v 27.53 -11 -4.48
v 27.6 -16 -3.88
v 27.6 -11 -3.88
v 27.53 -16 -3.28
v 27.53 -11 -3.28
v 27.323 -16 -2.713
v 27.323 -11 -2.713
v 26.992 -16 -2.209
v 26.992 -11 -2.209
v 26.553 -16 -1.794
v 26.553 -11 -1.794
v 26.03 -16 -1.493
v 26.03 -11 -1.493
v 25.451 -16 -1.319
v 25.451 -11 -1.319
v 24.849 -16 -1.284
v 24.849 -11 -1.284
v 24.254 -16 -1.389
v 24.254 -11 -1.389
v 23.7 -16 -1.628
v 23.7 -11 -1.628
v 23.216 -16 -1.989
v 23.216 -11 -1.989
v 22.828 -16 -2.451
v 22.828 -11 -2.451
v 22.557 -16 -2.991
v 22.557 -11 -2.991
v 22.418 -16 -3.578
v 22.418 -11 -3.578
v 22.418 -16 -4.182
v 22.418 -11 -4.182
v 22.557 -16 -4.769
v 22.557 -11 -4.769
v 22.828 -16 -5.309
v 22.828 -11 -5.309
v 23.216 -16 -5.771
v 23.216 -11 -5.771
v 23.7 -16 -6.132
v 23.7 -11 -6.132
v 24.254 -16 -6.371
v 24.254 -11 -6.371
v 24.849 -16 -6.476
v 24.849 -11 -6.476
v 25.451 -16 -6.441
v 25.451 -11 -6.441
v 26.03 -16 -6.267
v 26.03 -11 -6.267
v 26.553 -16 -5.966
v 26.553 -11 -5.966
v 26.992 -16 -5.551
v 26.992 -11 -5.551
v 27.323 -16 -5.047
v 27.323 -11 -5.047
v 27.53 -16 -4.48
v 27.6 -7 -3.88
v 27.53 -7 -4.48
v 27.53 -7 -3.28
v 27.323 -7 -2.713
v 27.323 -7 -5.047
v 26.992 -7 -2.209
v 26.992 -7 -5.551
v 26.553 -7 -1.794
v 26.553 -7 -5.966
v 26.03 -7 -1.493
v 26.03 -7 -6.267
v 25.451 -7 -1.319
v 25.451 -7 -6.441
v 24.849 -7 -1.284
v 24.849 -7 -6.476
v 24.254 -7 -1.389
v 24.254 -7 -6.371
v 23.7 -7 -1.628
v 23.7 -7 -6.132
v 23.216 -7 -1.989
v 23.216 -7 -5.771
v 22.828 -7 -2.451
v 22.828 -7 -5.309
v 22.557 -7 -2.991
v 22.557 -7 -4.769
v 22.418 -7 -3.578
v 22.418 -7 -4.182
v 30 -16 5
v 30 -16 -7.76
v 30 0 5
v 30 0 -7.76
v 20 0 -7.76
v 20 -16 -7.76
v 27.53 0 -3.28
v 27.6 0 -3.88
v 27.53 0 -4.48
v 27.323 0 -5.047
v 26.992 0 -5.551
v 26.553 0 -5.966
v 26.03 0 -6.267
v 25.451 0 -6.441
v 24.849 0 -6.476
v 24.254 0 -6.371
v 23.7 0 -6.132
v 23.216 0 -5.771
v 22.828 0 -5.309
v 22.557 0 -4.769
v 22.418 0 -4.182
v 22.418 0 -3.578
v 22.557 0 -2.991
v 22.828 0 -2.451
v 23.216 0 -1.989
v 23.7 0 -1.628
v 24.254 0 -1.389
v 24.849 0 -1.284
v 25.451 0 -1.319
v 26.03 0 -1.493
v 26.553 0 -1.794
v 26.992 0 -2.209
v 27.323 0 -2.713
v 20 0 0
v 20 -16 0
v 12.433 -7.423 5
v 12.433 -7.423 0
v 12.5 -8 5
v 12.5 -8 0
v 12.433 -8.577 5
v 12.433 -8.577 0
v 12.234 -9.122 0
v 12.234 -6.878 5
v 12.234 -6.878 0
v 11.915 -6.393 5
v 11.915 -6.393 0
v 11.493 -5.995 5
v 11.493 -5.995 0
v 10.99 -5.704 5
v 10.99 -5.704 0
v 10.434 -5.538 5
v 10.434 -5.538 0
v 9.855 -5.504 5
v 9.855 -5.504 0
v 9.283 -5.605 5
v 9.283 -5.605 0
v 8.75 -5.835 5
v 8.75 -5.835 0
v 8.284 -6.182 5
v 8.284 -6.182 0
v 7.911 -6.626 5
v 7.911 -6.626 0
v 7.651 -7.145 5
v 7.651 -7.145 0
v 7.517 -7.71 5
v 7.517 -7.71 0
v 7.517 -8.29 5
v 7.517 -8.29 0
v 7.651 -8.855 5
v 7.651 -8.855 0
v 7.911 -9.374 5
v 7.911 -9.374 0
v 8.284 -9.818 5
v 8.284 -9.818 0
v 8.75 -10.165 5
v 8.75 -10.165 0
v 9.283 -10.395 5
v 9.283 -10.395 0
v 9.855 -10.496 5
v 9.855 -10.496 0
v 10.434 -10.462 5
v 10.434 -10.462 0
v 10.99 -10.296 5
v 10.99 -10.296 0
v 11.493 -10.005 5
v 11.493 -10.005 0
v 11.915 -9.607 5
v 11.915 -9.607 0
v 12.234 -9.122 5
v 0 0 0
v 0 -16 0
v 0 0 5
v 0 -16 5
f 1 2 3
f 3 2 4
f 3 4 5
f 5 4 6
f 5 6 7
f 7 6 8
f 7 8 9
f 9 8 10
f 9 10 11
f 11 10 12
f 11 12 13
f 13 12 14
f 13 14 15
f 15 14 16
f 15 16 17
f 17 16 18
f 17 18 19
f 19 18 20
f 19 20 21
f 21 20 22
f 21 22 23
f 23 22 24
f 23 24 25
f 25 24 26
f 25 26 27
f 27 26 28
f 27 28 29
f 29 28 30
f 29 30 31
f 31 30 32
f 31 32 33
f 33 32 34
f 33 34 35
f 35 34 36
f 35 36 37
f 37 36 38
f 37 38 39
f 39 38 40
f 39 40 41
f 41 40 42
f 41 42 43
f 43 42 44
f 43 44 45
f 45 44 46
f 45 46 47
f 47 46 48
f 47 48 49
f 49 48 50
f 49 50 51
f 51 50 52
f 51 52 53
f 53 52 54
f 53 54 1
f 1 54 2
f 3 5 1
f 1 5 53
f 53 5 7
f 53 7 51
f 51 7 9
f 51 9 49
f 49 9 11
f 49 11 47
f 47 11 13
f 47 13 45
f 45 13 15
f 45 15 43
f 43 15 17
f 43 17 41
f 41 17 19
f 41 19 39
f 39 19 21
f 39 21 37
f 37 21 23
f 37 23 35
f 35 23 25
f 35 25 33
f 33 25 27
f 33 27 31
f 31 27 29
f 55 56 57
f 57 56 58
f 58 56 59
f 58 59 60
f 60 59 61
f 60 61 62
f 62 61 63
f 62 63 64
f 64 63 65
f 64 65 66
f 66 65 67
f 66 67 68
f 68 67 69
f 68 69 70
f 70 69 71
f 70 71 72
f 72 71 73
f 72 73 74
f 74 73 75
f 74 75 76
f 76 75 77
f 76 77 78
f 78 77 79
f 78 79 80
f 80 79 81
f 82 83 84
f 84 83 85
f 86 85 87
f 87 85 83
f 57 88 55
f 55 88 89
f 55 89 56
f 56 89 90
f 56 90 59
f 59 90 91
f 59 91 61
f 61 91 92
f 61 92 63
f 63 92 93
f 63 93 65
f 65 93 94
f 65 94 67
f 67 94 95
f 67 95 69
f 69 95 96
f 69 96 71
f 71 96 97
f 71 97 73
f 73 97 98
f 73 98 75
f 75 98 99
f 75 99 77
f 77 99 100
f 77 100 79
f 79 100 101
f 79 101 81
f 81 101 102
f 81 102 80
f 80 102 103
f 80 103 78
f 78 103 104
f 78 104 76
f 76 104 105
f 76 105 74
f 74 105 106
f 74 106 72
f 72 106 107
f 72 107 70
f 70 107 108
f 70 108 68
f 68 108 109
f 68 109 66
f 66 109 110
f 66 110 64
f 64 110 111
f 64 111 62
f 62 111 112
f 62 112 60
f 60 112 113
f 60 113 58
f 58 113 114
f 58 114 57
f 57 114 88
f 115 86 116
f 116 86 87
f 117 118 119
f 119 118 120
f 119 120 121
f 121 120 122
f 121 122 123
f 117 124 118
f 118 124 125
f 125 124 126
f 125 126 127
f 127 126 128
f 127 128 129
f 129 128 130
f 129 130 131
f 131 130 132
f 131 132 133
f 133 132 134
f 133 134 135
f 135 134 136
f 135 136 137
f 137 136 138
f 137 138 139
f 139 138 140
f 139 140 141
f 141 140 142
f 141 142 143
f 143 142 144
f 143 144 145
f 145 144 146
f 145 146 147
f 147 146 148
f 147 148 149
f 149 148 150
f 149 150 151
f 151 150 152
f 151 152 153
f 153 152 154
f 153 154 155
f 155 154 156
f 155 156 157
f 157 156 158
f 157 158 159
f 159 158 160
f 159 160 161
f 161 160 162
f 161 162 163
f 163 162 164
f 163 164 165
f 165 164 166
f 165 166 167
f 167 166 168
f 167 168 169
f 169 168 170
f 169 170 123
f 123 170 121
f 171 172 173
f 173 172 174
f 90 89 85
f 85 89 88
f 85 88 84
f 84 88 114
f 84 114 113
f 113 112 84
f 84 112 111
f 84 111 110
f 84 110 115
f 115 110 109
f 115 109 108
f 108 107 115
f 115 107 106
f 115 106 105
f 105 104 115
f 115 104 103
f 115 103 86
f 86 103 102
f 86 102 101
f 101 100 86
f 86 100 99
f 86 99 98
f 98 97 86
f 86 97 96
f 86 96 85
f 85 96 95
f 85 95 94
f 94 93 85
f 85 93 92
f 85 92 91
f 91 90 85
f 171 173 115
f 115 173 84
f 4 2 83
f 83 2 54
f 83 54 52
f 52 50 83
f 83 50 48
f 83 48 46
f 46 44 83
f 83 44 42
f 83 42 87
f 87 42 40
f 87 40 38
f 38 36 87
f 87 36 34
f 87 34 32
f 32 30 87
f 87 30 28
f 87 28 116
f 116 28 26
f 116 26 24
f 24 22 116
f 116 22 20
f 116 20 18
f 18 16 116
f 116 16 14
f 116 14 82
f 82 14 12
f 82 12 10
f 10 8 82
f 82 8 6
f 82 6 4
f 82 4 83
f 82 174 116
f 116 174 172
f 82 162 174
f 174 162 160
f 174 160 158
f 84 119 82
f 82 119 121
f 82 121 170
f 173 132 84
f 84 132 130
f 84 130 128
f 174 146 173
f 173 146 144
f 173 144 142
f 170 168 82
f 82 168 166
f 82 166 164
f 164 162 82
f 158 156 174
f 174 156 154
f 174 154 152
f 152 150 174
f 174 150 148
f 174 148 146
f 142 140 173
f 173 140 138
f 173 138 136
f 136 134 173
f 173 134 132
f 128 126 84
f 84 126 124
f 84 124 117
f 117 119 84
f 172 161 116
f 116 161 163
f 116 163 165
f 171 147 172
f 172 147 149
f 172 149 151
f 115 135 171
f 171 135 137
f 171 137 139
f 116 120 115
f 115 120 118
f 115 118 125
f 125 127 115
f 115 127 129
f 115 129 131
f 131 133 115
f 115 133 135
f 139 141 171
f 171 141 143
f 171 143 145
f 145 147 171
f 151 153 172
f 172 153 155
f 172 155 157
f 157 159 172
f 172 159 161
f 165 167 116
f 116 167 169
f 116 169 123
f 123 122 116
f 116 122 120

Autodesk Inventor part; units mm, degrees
ref_plane "YZ Plane" through (0, 0, 0) normal (1, 0, 0) x (0, 1, 0)
ref_plane "XZ Plane" through (0, 0, 0) normal (0, 1, 0) x (-1, 0, 0)
ref_plane "XY Plane" through (0, 0, 0) normal (0, 0, 1) x (1, 0, 0)
sketch "Sketch1" plane through (0, 0, 0) normal (0, 0, 1) x (1, 0, 0)
  line L0 (0, 0) -> (20, 0)
  line L1 (20, 0) -> (20, -16)
  line L2 (20, -16) -> (0, -16)
  line L3 (0, -16) -> (0, 0)
  circle A0 centre (10, -8) radius 2.5
  dimension "d0" = 20
  dimension "d1" = 16
  dimension "d2" = 8
  dimension "d3" = 10
  dimension "d4" = 5
extrude "Extrusion1" add sketch "Sketch1" along normal blind 5
sketch "Sketch2" plane through (0, 0, 0) normal (0, 1, 0) x (1, 0, 0)
  line L0 (20, 0) -> (20, -5) projected
  line L1 (20, 0) -> (30, 0)
  line L2 (30, 0) -> (30, 7.76)
  line L3 (30, 7.76) -> (20, 7.76)
  line L4 (20, 7.76) -> (20, 0)
  line L5 (20, -5) -> (30, -5)
  line L6 (30, -5) -> (30, 0)
  line L7 (30, 0) -> (20, 0)
  line L8 (20, 0) -> (20, -5)
  circle A0 centre (25, 3.88) radius 2.6
  point P0 (0, 0)
  dimension "d7" = 10
  dimension "d8" = 7.76
  dimension "d9" = 5.2
extrude "Extrusion2" add sketch "Sketch2" against normal blind 16
sketch "Sketch3" plane through (0, -16, 0) normal (0, -1, 0) x (1, 0, 0)
  line L0 (30, -7.76) -> (30, 5) projected
  line L1 (0, 0) -> (20, 0) projected
  line L2 (30, -7.76) -> (20, -7.76)
  line L3 (20, -7.76) -> (20, 0)
  line L4 (20, 0) -> (30, 0)
  line L5 (30, 0) -> (30, -7.76)
extrude "Extrusion3" add sketch "Sketch3" against normal blind 9
sketch "Sketch4" plane through (0, -16, 0) normal (0, -1, 0) x (1, 0, 0)
  circle A0 centre (25, -3.88) radius 2.6 projected
  circle A1 centre (25, -3.88) radius 2.6
  point P0 (0, 0)
  dimension "d16" = 5.2
extrude "Extrusion4" cut sketch "Sketch4" against normal blind 5
equation "\"d2\" = 0.5 * d1"
equation "\"d3\" = 0.5 * d0"
properties part number "cover mount LR v02"
